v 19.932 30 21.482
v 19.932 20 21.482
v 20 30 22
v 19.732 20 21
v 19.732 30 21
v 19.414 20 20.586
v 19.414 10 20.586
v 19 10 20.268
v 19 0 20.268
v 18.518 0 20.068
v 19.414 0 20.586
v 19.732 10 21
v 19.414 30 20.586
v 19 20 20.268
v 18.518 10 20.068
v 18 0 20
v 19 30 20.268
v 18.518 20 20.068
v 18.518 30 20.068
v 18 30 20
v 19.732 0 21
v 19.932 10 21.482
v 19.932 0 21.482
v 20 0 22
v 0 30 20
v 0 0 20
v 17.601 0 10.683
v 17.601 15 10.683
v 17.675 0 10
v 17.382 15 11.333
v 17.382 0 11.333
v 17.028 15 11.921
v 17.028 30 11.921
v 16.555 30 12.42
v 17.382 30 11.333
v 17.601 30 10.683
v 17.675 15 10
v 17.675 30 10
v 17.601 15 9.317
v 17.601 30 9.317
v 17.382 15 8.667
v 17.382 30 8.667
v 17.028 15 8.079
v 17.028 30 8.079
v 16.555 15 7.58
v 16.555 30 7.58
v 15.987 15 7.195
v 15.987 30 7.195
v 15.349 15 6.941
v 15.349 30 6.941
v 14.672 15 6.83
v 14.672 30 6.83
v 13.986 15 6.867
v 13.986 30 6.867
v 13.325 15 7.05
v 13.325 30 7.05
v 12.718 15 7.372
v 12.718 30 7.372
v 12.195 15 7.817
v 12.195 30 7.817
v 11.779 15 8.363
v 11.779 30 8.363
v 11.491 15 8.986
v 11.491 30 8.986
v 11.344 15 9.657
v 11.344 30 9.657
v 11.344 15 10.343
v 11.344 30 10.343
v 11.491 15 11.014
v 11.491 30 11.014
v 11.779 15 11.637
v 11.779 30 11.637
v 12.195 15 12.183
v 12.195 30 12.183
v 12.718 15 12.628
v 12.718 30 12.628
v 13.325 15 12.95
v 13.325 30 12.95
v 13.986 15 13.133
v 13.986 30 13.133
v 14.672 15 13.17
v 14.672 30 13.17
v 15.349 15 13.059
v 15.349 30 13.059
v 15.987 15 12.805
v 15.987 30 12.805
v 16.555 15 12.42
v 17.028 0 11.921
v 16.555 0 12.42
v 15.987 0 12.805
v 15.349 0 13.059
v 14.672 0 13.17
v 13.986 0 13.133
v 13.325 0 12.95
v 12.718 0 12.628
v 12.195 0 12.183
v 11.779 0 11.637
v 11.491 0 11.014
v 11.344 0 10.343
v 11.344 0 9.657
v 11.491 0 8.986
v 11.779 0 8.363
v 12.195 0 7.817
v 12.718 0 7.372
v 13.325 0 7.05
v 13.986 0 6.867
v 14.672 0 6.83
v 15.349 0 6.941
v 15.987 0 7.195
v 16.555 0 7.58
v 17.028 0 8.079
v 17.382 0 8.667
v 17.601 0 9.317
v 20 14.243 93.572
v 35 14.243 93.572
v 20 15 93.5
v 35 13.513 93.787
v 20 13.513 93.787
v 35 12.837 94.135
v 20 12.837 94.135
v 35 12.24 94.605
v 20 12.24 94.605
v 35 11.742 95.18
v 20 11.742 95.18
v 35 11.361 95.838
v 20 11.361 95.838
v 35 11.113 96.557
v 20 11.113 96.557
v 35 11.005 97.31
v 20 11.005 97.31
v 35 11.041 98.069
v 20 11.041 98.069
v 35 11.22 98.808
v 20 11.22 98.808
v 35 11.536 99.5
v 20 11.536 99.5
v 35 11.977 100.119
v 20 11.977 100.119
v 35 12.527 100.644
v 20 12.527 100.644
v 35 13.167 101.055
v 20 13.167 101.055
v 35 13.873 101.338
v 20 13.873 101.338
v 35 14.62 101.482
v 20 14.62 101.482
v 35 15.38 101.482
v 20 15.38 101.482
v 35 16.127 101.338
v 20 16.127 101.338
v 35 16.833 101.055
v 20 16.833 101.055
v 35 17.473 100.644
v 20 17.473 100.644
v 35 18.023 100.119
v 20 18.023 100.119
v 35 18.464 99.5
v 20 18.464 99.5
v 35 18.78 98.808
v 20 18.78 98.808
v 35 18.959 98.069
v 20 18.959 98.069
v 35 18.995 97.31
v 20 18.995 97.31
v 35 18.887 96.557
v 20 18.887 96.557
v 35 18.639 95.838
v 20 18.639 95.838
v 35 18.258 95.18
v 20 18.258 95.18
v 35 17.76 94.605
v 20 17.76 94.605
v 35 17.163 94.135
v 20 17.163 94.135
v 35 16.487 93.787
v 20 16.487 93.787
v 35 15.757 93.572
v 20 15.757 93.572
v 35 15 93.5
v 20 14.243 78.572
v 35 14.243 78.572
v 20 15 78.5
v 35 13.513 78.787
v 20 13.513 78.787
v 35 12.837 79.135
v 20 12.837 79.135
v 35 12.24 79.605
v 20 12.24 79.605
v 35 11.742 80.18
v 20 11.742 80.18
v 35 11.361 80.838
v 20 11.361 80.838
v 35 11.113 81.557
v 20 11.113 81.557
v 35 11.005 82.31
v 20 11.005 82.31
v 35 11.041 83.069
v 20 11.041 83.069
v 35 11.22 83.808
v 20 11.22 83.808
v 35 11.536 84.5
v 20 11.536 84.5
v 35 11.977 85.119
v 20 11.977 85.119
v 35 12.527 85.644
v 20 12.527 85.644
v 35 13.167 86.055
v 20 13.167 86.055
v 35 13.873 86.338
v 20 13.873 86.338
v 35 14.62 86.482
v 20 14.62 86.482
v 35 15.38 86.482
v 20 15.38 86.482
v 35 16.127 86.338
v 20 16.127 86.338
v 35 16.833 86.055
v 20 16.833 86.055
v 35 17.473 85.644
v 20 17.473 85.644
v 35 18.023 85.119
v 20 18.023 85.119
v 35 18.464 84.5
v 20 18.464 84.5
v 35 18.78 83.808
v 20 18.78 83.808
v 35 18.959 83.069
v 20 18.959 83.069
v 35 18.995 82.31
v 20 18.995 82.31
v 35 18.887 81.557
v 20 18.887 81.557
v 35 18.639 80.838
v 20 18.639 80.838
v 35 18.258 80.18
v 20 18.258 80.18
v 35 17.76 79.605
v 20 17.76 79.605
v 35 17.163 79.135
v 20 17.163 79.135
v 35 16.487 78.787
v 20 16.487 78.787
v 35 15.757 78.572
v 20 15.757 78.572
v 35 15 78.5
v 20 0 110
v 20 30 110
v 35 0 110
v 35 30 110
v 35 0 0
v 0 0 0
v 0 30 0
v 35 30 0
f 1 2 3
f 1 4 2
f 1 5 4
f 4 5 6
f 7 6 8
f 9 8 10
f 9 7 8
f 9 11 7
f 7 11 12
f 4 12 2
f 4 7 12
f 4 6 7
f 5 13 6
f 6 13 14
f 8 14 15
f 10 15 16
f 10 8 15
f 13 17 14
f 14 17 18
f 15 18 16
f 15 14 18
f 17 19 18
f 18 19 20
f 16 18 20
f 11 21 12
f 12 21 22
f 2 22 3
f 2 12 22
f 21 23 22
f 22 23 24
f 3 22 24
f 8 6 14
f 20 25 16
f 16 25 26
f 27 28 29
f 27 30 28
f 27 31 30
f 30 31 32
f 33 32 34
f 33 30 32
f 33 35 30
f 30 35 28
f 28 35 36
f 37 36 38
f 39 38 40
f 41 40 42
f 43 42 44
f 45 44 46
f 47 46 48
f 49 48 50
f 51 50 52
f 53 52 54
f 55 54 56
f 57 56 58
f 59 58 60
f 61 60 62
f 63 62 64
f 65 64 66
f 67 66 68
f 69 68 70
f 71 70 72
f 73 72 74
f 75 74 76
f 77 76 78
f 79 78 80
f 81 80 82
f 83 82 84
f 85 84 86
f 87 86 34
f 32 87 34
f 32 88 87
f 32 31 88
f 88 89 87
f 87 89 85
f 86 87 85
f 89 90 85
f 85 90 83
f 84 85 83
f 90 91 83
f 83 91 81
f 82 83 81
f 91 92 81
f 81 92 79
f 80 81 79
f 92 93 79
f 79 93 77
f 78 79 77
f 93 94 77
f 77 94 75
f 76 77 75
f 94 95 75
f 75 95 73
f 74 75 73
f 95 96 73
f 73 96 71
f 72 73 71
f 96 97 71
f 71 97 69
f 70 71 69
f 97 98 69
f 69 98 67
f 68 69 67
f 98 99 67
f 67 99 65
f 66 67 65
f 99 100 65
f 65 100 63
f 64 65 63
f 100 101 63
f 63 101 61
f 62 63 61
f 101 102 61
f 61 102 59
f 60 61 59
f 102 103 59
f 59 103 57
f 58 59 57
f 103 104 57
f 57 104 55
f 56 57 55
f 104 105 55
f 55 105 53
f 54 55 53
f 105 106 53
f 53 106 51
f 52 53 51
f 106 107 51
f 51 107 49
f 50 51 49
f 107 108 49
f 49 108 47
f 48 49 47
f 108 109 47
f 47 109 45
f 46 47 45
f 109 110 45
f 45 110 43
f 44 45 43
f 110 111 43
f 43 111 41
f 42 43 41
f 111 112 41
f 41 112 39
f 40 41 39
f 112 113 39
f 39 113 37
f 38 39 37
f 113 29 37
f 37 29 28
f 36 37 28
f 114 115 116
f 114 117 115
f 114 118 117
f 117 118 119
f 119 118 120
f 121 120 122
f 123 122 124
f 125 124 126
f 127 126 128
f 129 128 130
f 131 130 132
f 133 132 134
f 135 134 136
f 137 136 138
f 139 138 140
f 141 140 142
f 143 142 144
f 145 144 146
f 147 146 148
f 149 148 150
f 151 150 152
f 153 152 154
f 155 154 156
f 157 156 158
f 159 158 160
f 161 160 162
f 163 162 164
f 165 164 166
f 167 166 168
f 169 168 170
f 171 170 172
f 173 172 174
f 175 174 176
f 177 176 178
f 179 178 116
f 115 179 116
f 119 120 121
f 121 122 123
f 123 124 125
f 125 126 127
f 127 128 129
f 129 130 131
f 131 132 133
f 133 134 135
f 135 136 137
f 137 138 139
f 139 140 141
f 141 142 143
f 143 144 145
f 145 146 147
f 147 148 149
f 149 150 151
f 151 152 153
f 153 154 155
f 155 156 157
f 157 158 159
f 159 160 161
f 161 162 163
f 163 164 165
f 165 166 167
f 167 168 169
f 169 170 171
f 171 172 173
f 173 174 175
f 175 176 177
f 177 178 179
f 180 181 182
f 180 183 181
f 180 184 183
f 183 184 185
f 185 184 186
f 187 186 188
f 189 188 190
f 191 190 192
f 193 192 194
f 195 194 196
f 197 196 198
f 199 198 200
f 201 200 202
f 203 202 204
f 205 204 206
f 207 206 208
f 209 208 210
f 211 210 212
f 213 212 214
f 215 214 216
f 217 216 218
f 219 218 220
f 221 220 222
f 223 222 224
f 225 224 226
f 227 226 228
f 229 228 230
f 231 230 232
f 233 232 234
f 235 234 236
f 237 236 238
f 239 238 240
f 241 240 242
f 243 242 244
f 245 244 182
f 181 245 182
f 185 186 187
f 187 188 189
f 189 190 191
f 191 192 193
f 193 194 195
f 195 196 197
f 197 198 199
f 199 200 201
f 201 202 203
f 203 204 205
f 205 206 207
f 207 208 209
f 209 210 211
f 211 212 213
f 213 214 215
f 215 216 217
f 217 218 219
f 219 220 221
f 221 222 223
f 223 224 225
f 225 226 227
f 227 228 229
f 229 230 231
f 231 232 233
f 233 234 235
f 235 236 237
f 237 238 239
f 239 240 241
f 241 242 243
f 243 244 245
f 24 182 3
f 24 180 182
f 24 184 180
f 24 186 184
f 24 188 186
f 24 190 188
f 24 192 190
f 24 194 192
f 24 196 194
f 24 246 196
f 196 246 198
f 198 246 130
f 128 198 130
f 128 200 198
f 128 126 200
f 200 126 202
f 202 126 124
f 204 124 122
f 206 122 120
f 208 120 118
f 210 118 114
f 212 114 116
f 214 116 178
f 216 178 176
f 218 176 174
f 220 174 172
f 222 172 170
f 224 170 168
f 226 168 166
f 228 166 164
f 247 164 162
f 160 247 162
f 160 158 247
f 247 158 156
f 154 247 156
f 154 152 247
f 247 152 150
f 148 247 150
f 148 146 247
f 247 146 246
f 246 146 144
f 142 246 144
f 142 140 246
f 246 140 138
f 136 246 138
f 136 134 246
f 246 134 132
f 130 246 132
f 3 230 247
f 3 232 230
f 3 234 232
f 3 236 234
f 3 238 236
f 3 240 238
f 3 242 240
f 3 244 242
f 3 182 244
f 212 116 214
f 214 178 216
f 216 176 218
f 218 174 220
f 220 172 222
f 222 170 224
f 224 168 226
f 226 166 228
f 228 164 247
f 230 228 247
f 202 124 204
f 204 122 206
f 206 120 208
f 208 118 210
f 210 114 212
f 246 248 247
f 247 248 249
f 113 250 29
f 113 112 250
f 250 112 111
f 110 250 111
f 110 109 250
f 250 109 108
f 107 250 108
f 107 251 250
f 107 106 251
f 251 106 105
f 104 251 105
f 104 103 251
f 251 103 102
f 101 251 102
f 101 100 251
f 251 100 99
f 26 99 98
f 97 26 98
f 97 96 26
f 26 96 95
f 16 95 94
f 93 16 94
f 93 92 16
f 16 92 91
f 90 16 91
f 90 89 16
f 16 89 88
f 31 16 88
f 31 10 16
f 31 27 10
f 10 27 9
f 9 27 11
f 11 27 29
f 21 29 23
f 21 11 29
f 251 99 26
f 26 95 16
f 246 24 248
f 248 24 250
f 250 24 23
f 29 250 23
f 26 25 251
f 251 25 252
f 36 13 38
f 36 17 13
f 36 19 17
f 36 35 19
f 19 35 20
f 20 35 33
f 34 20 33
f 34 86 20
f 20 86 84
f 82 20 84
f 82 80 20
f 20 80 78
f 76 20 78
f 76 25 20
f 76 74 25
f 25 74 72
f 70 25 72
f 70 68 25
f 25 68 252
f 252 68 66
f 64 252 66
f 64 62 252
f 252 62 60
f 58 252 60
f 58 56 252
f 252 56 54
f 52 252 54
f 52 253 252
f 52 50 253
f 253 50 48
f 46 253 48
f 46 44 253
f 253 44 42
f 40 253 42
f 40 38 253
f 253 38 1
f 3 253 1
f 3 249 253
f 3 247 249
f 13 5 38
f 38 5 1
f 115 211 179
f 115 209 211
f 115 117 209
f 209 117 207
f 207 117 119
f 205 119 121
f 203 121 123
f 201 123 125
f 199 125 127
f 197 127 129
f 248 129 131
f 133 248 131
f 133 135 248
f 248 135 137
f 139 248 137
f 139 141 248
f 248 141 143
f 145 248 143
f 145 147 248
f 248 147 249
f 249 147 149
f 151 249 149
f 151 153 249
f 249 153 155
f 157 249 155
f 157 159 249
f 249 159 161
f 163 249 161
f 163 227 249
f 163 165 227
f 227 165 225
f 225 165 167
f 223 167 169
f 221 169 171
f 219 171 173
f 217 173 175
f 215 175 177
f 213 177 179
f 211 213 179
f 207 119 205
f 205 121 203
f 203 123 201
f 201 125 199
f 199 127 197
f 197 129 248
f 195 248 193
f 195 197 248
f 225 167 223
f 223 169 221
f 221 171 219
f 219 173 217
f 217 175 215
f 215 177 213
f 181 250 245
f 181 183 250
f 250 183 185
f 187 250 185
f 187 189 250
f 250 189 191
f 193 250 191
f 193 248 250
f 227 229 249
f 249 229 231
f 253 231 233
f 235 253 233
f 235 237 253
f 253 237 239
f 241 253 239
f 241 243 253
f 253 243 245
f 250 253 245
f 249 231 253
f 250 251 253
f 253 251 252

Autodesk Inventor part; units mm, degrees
ref_plane "YZ Plane" through (0, 0, 0) normal (1, 0, 0) x (0, 1, 0)
ref_plane "XZ Plane" through (0, 0, 0) normal (0, 1, 0) x (-1, 0, 0)
ref_plane "XY Plane" through (0, 0, 0) normal (0, 0, 1) x (1, 0, 0)
sketch "Sketch1" plane through (0, 0, 0) normal (0, 0, 1) x (1, 0, 0)
  line L0 (0, 0) -> (35, 0)
  line L1 (35, 0) -> (35, 30)
  line L2 (35, 30) -> (0, 30)
  line L3 (0, 30) -> (0, 0)
  dimension "d0" = 35
  dimension "d1" = 30
extrude "Extrusion1" add sketch "Sketch1" along normal blind 110
sketch "Sketch2" plane through (0, 0, 110) normal (0, 0, 1) x (1, 0, 0)
  line L0 (0, 0) -> (35, 0) projected
  line L1 (35, 0) -> (35, 30) projected
  line L2 (35, 30) -> (0, 30) projected
  line L3 (0, 30) -> (0, 0) projected
  line L4 (0, 0) -> (35, 0) projected
  line L5 (35, 30) -> (20, 30)
  line L6 (20, 30) -> (20, 0)
  line L7 (20, 0) -> (35, 0)
  line L8 (35, 0) -> (35, 30)
  dimension "d4" = 15
extrude "Extrusion2" cut sketch "Sketch2" against normal blind 90 contours L3 L2 L6 L0
sketch "Sketch3" plane through (35, 0, 0) normal (1, 0, 0) x (0, 0, -1)
  line L0 (0, 0) -> (0, 30) projected
  line L1 (0, 30) -> (-110, 30) projected
  line L2 (-110, 0) -> (-110, 30) projected
  line L3 (0, 0) -> (-110, 0) projected
  circle A0 centre (-97.5, 15) radius 4
  circle A1 centre (-82.5, 15) radius 4
  point P0 (0, 0)
  dimension "d9" = 15
  dimension "d10" = 15
  dimension "d11" = 12.5
  dimension "d12" = 15
  dimension "d13" = 8
  dimension "d14" = 8
extrude "Extrusion3" cut sketch "Sketch3" against normal up to next contours A0 | A1
sketch "Sketch4" plane through (0, 30, 0) normal (0, 1, 0) x (1, 0, 0)
  circle A0 centre (14.5, -10) radius 3.175
  line L0 (0, 0) -> (0, -20) projected
  line L1 (0, -20) -> (20, -20) projected
  line L2 (35, 0) -> (0, 0) projected
  dimension "d17" = 6.35
  dimension "d18" = 14.5
  dimension "d23" = 10
extrude "Extrusion4" cut sketch "Sketch4" against normal up to next
fillet "Fillet1" radius 2 1 edges at (20, 15, 20)
properties part number "X_Rail_Belt_Pulley_Connector"
